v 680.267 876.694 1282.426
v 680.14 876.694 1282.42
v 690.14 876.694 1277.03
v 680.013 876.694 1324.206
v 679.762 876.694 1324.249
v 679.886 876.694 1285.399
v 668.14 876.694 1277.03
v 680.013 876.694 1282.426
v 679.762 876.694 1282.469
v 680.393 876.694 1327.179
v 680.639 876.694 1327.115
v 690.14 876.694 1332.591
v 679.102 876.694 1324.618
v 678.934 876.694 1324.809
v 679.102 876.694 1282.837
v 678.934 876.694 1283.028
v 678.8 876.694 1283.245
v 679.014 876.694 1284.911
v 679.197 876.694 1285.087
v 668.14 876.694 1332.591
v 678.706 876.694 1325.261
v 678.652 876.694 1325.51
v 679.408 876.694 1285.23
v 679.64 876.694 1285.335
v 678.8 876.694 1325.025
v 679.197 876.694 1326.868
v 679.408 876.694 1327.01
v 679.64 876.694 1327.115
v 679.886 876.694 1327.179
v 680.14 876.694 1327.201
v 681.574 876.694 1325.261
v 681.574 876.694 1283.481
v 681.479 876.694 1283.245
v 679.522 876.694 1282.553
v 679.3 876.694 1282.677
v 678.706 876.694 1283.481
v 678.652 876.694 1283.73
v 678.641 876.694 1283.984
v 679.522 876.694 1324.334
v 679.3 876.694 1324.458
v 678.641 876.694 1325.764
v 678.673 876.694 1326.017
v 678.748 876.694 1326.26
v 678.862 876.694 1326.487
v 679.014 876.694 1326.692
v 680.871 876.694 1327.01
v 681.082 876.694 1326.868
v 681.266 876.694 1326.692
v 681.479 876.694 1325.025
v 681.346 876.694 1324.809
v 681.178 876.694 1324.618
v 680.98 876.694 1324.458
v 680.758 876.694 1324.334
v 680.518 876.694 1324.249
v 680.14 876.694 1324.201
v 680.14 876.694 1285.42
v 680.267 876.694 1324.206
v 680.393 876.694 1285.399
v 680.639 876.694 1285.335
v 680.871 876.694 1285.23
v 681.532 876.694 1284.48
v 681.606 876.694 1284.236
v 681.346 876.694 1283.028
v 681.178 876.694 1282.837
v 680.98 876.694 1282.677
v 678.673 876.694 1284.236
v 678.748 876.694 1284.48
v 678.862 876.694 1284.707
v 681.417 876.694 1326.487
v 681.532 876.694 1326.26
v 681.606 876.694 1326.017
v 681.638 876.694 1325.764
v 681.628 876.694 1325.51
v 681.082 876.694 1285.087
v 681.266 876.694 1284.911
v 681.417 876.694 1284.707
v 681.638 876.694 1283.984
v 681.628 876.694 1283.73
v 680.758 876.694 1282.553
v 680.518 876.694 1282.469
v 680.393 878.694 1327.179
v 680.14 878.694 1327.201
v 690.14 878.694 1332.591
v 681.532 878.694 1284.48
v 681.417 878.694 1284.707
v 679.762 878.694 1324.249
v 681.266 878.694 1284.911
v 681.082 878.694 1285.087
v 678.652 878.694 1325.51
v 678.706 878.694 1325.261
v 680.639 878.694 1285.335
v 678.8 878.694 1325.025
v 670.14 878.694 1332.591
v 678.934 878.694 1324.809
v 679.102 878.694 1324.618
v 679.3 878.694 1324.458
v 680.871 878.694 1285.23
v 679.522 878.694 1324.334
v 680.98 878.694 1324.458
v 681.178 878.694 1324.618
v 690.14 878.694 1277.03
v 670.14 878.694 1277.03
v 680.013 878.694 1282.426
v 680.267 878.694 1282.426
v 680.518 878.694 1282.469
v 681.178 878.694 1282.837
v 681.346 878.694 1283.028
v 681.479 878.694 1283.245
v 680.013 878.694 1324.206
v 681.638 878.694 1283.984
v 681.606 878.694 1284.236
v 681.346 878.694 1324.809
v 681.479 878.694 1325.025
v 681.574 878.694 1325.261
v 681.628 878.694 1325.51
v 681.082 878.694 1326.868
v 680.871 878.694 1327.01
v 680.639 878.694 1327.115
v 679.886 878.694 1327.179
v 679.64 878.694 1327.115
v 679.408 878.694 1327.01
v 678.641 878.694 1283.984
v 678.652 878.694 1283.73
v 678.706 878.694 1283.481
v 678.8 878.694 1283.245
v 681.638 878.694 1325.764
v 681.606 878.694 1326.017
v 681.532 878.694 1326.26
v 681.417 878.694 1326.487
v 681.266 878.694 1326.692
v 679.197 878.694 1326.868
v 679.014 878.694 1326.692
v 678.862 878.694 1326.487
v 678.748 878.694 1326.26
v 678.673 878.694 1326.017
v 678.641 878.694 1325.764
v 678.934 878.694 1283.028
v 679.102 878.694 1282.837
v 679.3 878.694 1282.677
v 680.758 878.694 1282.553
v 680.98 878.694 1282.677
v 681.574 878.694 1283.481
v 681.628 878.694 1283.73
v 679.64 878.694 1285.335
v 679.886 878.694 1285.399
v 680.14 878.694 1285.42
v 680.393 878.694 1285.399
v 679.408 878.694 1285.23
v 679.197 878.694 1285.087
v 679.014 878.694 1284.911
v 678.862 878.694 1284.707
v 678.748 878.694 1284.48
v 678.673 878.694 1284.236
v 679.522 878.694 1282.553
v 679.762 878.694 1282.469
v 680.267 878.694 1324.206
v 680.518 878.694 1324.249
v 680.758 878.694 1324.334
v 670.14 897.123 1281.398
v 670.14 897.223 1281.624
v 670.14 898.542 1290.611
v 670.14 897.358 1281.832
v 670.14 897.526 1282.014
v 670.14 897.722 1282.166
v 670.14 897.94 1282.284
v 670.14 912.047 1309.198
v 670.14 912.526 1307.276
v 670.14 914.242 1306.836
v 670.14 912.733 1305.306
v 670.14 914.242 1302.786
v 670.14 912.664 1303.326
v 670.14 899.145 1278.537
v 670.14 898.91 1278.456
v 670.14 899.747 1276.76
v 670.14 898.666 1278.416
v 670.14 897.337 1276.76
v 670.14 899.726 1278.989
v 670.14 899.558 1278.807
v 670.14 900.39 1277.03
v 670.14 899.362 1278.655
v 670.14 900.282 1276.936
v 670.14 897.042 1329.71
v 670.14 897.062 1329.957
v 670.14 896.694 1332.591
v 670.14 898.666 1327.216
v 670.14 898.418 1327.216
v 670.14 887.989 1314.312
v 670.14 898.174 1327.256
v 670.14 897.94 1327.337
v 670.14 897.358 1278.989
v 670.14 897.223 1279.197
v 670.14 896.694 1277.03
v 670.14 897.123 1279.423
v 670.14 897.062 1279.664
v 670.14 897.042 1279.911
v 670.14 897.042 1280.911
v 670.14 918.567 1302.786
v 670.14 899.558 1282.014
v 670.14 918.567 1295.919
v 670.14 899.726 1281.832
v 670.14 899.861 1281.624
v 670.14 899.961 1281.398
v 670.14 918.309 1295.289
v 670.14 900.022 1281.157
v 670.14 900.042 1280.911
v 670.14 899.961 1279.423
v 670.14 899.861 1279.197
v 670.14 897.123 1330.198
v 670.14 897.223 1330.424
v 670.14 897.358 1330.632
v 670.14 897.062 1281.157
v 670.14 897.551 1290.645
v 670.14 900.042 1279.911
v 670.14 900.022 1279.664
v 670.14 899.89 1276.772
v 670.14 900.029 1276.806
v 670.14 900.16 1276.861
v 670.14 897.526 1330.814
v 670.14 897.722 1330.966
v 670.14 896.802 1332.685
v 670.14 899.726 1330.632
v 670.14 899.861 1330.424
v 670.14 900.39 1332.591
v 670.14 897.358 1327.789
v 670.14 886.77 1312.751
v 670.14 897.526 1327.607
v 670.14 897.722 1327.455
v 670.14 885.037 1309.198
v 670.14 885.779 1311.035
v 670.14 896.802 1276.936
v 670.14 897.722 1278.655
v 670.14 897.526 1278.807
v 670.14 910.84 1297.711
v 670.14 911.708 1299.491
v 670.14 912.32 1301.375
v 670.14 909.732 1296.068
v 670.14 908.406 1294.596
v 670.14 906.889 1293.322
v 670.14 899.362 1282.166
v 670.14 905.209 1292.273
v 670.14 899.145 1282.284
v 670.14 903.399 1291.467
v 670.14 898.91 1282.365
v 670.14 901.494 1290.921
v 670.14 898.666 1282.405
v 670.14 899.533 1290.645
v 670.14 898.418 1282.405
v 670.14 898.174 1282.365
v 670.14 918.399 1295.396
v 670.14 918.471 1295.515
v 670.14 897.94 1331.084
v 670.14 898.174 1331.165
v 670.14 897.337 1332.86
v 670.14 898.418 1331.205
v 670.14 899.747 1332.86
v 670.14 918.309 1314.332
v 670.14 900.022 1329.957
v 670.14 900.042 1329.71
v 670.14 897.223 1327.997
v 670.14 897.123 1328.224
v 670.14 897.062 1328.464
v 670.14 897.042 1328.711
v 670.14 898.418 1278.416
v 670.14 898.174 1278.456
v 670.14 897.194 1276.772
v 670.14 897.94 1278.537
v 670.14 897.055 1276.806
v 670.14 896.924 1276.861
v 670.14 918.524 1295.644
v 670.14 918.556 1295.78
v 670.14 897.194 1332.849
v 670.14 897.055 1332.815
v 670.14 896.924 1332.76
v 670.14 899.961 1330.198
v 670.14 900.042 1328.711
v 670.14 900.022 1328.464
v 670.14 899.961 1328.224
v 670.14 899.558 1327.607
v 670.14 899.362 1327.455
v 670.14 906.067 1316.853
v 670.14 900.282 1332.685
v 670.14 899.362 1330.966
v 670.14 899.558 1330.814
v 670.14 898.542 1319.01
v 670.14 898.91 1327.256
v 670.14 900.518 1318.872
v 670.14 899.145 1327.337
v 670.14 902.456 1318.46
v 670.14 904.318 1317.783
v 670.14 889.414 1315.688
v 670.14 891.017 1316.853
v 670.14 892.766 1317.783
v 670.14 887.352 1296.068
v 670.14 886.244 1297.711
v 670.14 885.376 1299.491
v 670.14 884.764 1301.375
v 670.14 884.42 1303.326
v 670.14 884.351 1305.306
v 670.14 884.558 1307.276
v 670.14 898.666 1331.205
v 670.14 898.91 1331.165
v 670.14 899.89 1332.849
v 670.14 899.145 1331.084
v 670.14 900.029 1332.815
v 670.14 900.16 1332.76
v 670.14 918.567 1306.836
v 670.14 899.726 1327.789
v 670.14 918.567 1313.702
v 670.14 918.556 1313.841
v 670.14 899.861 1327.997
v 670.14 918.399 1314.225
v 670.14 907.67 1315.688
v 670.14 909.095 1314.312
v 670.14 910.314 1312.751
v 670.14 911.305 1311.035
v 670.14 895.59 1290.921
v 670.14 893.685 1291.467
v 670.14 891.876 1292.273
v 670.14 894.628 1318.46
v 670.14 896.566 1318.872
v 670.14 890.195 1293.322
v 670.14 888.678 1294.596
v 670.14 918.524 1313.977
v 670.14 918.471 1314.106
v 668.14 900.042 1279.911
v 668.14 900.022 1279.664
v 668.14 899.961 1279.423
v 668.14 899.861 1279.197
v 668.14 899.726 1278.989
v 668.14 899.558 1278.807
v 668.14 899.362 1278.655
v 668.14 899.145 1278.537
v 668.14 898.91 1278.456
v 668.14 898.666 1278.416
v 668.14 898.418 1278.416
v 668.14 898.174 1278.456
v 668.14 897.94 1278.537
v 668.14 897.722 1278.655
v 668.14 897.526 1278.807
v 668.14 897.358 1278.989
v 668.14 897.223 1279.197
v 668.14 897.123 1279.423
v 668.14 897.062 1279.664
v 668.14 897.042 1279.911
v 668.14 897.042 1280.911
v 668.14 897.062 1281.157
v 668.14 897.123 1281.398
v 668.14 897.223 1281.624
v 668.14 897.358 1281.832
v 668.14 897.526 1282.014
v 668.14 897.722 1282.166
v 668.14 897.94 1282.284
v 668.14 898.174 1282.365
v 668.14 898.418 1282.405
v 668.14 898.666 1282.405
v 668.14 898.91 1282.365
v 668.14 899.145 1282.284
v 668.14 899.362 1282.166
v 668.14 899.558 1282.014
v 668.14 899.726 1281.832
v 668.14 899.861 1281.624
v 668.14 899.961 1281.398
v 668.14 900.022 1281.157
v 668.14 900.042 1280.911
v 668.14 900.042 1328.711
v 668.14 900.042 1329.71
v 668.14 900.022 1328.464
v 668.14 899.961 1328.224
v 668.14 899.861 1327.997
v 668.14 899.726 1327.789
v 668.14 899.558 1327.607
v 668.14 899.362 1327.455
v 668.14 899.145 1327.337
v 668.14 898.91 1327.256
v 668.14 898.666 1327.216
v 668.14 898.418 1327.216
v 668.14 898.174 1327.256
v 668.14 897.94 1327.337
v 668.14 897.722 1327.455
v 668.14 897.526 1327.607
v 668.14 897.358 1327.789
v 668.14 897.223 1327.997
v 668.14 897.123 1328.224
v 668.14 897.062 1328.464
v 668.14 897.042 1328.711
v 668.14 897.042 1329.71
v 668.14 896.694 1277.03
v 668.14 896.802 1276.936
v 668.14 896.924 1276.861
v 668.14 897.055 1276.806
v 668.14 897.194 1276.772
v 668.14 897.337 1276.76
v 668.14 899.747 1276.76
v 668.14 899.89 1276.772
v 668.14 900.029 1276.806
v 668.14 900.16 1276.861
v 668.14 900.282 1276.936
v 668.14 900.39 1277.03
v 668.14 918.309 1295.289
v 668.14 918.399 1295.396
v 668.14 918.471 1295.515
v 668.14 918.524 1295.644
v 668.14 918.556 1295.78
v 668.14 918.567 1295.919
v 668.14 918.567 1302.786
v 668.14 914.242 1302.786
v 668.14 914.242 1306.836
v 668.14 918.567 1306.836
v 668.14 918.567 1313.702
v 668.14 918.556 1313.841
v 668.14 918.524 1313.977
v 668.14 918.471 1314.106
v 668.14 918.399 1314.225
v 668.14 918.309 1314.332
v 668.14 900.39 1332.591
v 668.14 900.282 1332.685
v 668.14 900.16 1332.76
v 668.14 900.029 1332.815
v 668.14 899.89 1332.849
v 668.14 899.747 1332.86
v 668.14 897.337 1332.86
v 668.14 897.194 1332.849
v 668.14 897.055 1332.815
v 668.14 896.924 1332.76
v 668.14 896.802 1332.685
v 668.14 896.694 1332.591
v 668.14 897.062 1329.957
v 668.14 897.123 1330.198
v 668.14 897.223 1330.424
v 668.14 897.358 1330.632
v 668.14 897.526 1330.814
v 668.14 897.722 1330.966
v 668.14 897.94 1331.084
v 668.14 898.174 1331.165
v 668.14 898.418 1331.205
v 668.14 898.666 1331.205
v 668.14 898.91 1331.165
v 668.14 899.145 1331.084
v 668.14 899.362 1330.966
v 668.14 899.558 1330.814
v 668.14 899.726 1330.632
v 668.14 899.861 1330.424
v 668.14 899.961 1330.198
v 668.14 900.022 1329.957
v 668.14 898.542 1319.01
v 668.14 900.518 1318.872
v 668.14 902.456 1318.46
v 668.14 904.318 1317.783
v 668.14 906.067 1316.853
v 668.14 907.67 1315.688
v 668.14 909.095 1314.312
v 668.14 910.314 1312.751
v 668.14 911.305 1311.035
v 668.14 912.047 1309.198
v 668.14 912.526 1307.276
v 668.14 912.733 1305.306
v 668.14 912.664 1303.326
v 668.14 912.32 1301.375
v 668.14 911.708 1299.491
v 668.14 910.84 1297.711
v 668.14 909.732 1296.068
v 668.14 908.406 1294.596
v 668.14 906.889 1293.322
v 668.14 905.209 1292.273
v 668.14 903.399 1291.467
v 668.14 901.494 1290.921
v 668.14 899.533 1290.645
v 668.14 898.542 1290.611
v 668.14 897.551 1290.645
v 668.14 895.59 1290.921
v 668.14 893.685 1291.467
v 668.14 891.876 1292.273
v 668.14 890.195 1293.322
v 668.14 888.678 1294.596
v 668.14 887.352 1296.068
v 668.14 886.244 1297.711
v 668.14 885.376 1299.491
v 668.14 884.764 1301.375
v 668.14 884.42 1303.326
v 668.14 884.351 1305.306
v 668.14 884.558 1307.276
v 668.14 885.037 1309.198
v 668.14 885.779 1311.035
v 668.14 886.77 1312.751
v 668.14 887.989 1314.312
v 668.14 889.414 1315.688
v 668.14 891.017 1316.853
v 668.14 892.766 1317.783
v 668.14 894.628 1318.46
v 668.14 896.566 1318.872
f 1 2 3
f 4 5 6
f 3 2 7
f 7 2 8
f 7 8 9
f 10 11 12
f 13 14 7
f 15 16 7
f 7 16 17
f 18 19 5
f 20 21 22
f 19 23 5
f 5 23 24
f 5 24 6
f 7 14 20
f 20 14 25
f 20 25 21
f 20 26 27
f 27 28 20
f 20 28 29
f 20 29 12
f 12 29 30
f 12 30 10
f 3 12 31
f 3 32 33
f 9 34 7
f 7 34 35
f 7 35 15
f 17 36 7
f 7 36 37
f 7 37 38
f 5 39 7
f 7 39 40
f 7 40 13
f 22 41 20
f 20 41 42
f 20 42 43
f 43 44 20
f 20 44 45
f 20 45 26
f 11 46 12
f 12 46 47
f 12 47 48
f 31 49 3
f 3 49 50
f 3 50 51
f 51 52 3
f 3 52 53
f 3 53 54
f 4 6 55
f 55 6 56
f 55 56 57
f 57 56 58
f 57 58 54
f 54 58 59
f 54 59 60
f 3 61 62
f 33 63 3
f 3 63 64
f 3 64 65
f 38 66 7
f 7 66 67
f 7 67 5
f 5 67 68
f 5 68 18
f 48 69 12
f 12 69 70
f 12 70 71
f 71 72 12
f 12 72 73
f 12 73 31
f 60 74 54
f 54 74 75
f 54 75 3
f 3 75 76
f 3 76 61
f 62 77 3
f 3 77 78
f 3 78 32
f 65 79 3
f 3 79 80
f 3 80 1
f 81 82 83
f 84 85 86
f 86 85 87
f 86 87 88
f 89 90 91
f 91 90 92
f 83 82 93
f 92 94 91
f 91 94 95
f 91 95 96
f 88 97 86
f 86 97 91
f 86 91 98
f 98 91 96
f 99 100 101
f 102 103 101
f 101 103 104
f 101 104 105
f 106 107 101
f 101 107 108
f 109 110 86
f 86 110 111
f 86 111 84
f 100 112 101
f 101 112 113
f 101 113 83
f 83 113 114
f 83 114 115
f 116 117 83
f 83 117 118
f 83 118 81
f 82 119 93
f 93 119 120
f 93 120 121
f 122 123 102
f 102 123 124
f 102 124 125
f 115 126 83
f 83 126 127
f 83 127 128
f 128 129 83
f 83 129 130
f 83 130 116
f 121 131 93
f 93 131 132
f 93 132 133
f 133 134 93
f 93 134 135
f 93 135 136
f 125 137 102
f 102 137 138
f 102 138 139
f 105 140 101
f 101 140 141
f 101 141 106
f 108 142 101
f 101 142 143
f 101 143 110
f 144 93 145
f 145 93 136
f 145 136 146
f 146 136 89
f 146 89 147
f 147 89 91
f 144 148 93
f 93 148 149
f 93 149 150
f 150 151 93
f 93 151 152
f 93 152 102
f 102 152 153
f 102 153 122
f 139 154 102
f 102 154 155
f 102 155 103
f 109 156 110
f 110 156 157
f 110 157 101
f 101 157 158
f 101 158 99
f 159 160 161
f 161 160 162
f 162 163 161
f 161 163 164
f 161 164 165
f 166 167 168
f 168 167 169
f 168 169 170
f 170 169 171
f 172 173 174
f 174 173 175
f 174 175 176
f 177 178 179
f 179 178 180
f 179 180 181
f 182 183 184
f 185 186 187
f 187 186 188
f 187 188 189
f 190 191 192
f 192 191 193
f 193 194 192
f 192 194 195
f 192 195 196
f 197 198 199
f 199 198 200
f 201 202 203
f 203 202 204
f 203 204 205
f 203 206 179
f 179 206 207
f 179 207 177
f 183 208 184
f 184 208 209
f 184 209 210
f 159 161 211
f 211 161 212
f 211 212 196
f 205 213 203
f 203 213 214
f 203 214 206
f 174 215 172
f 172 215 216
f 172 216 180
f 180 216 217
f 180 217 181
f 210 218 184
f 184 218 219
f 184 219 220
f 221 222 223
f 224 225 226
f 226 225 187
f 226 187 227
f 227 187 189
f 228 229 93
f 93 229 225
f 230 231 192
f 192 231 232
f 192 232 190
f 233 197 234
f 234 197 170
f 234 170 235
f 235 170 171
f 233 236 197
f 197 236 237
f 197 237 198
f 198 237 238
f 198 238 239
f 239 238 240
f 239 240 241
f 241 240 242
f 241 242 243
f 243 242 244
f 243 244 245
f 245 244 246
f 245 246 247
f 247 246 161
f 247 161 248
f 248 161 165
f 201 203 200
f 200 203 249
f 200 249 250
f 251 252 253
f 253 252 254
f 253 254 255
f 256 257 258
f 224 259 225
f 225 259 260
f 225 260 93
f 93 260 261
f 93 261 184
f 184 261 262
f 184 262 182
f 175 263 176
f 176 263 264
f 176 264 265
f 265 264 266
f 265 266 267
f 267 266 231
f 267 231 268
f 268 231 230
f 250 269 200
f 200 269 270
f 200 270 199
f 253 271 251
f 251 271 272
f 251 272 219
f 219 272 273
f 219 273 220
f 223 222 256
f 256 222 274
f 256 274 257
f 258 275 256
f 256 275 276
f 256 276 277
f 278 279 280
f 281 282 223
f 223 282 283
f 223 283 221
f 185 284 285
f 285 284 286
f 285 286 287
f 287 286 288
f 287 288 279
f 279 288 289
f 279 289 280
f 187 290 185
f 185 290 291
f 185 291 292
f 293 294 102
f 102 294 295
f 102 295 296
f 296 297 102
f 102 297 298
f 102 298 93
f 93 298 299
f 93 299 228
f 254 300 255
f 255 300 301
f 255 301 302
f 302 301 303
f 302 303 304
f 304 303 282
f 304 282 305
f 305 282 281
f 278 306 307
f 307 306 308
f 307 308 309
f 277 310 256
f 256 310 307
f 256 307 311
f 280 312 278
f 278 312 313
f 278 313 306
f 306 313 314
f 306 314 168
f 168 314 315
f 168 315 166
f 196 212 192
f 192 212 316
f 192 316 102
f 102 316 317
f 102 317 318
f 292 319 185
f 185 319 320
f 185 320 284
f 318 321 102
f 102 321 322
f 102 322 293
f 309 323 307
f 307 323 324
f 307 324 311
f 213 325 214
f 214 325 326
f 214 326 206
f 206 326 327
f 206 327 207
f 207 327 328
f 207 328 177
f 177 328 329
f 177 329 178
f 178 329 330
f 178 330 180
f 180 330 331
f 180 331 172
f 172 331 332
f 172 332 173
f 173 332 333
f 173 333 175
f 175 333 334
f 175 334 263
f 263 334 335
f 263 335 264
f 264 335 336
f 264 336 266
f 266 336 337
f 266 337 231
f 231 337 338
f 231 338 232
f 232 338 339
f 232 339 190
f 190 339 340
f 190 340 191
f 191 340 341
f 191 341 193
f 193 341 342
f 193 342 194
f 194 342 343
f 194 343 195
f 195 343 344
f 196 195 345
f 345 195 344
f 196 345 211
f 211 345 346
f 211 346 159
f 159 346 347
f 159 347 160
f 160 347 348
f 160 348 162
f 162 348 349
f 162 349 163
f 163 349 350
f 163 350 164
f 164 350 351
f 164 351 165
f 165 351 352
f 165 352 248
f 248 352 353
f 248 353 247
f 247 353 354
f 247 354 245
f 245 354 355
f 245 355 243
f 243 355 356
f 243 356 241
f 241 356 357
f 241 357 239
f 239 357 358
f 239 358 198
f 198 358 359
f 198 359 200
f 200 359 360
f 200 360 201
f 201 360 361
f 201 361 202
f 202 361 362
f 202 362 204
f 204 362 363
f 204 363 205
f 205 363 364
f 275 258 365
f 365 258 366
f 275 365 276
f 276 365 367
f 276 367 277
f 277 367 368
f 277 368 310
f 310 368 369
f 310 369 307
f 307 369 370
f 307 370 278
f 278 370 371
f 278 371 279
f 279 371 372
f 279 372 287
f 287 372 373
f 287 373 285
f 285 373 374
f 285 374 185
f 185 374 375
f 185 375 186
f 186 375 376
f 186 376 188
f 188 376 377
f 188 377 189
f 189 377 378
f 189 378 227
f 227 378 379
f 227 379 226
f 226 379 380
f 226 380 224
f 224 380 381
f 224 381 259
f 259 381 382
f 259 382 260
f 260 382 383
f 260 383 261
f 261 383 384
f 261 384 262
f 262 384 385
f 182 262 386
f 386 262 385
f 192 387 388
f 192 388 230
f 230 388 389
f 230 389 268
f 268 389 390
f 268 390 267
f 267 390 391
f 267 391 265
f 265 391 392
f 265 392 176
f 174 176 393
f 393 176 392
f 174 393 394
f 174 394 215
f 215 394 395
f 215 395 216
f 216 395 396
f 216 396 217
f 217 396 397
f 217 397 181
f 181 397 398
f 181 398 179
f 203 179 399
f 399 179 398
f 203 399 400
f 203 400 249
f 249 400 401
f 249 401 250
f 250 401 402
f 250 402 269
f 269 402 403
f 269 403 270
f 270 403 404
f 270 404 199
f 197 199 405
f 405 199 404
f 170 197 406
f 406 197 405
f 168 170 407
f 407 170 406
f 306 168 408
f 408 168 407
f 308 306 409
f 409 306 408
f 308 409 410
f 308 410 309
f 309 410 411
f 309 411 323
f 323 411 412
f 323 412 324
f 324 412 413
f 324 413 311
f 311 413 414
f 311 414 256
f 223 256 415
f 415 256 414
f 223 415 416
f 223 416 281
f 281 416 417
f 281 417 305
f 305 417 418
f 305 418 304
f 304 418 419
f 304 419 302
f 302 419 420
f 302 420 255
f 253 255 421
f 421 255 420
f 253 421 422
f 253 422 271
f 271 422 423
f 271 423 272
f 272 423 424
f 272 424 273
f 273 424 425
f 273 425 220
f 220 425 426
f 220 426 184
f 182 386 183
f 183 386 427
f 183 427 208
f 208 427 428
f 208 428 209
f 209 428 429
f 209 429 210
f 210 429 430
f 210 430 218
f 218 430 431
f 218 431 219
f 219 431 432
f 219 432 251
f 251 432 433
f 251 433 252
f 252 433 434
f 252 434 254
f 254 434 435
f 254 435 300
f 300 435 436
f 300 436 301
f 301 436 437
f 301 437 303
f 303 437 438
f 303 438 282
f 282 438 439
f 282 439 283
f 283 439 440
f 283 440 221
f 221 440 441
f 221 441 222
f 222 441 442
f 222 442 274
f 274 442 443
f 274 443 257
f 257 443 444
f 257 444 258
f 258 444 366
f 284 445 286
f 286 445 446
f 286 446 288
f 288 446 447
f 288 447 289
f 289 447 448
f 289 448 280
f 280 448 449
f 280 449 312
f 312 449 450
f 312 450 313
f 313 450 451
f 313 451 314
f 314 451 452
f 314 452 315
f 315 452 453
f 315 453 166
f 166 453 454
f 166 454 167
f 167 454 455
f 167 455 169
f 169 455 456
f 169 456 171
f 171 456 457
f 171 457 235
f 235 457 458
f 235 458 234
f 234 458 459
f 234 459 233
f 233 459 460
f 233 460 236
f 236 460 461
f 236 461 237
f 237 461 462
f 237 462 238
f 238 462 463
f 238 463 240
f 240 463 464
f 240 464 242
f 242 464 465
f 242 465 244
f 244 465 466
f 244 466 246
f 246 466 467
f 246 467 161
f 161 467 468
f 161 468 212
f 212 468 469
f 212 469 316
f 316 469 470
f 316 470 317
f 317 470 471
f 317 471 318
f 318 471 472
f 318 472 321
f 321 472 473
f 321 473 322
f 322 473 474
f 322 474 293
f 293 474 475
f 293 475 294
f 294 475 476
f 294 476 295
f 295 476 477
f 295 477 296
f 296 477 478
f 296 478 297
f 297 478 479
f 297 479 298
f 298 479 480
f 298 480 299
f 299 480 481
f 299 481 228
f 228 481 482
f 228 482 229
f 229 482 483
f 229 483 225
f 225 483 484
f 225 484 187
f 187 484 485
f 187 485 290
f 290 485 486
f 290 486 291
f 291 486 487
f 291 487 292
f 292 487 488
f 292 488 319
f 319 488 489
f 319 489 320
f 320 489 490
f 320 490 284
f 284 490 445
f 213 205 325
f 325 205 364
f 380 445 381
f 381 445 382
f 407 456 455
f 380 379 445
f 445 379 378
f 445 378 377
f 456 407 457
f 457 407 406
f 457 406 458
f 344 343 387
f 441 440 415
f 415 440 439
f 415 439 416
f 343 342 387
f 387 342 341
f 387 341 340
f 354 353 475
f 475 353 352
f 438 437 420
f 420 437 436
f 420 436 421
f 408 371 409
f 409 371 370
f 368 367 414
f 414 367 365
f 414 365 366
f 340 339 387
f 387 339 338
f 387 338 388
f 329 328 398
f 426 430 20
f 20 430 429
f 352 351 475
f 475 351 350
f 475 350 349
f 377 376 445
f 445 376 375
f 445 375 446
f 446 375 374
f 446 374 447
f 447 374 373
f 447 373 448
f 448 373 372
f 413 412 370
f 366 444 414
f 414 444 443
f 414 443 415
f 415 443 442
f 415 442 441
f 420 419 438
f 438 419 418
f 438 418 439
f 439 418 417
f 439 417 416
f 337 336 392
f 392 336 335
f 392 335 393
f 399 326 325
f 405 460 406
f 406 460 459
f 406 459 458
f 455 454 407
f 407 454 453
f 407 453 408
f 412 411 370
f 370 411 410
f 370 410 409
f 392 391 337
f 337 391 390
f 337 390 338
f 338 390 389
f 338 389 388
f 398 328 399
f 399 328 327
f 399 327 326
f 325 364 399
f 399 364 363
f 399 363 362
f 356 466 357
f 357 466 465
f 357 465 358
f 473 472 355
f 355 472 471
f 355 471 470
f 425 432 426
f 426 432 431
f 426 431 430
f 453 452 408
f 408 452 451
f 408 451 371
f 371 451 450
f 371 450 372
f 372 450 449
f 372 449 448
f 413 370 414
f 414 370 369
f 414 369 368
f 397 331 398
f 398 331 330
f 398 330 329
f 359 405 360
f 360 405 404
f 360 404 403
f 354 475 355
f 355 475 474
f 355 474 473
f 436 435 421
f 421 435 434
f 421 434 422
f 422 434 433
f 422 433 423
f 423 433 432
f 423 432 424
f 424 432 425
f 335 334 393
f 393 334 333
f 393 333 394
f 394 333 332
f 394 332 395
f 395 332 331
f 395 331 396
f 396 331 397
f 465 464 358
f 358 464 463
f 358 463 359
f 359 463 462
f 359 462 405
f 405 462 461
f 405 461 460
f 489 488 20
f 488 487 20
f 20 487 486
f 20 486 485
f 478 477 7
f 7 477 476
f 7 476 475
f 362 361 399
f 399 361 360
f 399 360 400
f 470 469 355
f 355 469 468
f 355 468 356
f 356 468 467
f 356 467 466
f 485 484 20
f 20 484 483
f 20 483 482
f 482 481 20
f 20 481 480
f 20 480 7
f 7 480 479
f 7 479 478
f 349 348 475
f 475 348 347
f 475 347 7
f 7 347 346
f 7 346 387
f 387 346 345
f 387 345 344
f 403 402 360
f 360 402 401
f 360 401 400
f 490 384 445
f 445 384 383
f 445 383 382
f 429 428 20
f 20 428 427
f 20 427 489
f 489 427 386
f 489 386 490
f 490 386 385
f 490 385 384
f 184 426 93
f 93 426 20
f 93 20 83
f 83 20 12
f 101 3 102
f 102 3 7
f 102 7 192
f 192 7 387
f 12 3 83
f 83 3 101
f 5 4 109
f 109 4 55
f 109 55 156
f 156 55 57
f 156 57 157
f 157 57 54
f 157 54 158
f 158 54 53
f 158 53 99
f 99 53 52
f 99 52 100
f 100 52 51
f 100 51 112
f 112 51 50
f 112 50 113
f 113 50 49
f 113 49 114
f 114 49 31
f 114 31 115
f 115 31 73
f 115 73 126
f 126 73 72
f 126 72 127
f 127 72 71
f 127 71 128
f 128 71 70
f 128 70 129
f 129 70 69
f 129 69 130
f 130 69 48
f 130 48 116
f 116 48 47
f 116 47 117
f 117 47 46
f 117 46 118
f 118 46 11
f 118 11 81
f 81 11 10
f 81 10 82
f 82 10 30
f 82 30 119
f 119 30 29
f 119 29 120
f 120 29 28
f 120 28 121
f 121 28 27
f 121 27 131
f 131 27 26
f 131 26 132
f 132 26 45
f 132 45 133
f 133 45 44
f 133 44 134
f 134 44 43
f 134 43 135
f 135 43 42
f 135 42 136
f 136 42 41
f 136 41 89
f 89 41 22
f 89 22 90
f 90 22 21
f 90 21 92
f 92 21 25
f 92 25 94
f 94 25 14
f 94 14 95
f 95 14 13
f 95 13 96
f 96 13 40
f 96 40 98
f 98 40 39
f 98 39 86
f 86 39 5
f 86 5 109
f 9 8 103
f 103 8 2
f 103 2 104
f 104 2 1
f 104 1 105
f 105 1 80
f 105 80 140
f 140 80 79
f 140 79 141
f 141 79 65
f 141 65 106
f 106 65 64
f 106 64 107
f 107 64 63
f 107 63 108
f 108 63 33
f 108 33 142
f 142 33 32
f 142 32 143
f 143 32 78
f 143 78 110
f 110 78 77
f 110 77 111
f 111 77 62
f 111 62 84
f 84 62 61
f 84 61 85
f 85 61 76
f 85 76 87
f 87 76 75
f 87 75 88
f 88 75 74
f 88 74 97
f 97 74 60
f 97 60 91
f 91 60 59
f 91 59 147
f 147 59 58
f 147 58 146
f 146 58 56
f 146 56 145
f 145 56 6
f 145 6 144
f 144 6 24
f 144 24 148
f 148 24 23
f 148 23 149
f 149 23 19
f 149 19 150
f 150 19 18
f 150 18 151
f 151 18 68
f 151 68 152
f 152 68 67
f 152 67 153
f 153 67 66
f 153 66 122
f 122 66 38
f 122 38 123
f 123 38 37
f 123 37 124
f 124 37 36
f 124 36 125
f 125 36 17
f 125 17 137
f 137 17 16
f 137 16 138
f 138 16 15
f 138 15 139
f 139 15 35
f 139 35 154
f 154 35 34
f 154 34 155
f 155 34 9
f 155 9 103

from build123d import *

# Parameters (mm, degrees)
SKETCH1_R           = 14.2
SKETCH1_W           = 4.4
SKETCH1_H           = 4.2
BOSS_EXTRUDE1_DEPTH = 2
BOSS_EXTRUDE2_DEPTH = 2
SKETCH3_W           = 55.560809748
SKETCH3_H           = 2
BOSS_EXTRUDE3_DEPTH = 20
CUT_EXTRUDE1_DEPTH  = 2


with BuildPart() as part:
    # Sketch1 → Boss-Extrude1 (new body)
    with BuildSketch(Plane(origin=(668.139739498, 0, 0), x_dir=(0, 0, -1), z_dir=(1, 0, 0))):
        with BuildLine():
            ThreePointArc((-1314.332175016, 878.774707493), (-1314.042285701, 878.583942821), (-1313.701770142, 878.517038946))
            Line((-1313.701770142, 878.517038946), (-1306.83550516, 878.517038946))
            Line((-1306.83550516, 878.517038946), (-1306.83550516, 882.842038946))
            Line((-1306.83550516, 882.842038946), (-1302.78550516, 882.842038946))
            Line((-1302.78550516, 882.842038946), (-1302.78550516, 878.517038946))
            Line((-1302.78550516, 878.517038946), (-1295.919240178, 878.517038946))
            ThreePointArc((-1295.919240178, 878.517038946), (-1295.578724618, 878.583942821), (-1295.288835304, 878.774707493))
            Line((-1295.288835304, 878.774707493), (-1277.030100286, 896.694420906))
            ThreePointArc((-1277.030100286, 896.694420906), (-1276.830636379, 896.988445301), (-1276.76050516, 897.336752359))
            Line((-1276.76050516, 897.336752359), (-1276.76050516, 899.747325533))
            ThreePointArc((-1276.76050516, 899.747325533), (-1276.830636379, 900.095632591), (-1277.030100286, 900.389656986))
            Line((-1277.030100286, 900.389656986), (-1295.288835304, 918.309370399))
            ThreePointArc((-1295.288835304, 918.309370399), (-1295.578724618, 918.500135071), (-1295.919240178, 918.567038946))
            Line((-1295.919240178, 918.567038946), (-1302.78550516, 918.567038946))
            Line((-1302.78550516, 918.567038946), (-1302.78550516, 914.242038946))
            Line((-1302.78550516, 914.242038946), (-1306.83550516, 914.242038946))
            Line((-1306.83550516, 914.242038946), (-1306.83550516, 918.567038946))
            Line((-1306.83550516, 918.567038946), (-1313.701770142, 918.567038946))
            ThreePointArc((-1313.701770142, 918.567038946), (-1314.042285701, 918.500135071), (-1314.332175016, 918.309370399))
            Line((-1314.332175016, 918.309370399), (-1332.590910034, 900.389656986))
            ThreePointArc((-1332.590910034, 900.389656986), (-1332.79037394, 900.095632591), (-1332.86050516, 899.747325533))
            Line((-1332.86050516, 899.747325533), (-1332.86050516, 897.336752359))
            ThreePointArc((-1332.86050516, 897.336752359), (-1332.79037394, 896.988445301), (-1332.590910034, 896.694420906))
            Line((-1332.590910034, 896.694420906), (-1314.332175016, 878.774707493))
        make_face()
        with Locations((-1304.81050516, 898.542038946)):
            Circle(SKETCH1_R, mode=Mode.SUBTRACT)
        with BuildLine():
            Line((-1329.71050516, 900.042038946), (-1328.71050516, 900.042038946))
            ThreePointArc((-1328.71050516, 900.042038946), (-1327.21050516, 898.542038946), (-1328.71050516, 897.042038946))
            Line((-1328.71050516, 897.042038946), (-1329.71050516, 897.042038946))
            ThreePointArc((-1329.71050516, 897.042038946), (-1330.771165332, 897.481378774), (-1331.21050516, 898.542038946))
            ThreePointArc((-1331.21050516, 898.542038946), (-1330.771165332, 899.602699118), (-1329.71050516, 900.042038946))
        make_face(mode=Mode.SUBTRACT)
        with BuildLine():
            ThreePointArc((-1279.91050516, 900.042038946), (-1278.41050516, 898.542038946), (-1279.91050516, 897.042038946))
            Line((-1279.91050516, 897.042038946), (-1280.91050516, 897.042038946))
            ThreePointArc((-1280.91050516, 897.042038946), (-1281.971165332, 897.481378774), (-1282.41050516, 898.542038946))
            ThreePointArc((-1282.41050516, 898.542038946), (-1281.971165332, 899.602699118), (-1280.91050516, 900.042038946))
            Line((-1280.91050516, 900.042038946), (-1279.91050516, 900.042038946))
        make_face(mode=Mode.SUBTRACT)
        with Locations((-1286.76050516, 898.542038946)):
            Rectangle(SKETCH1_W, SKETCH1_H, mode=Mode.SUBTRACT)
        with Locations((-1322.86050516, 898.542038946)):
            Rectangle(SKETCH1_W, SKETCH1_H, mode=Mode.SUBTRACT)
        with Locations((-1322.86050516, 898.542038946)):
            Rectangle(SKETCH1_W, SKETCH1_H)
        with Locations((-1286.76050516, 898.542038946)):
            Rectangle(SKETCH1_W, SKETCH1_H)
    extrude(amount=BOSS_EXTRUDE1_DEPTH)

    # Sketch2 → Boss-Extrude2 (add)
    with BuildSketch(Plane(origin=(670.139739498, 0, 0), x_dir=(0, 0, -1), z_dir=(1, 0, 0))):
        with BuildLine():
            Line((-1332.590910034, 876.694420906), (-1277.030100286, 876.694420906))
            Line((-1277.030100286, 876.694420906), (-1277.030100286, 896.694420906))
            Line((-1277.030100286, 896.694420906), (-1295.288835304, 878.774707493))
            ThreePointArc((-1295.288835304, 878.774707493), (-1295.578724618, 878.583942821), (-1295.919240178, 878.517038946))
            Line((-1295.919240178, 878.517038946), (-1302.78550516, 878.517038946))
            Line((-1302.78550516, 878.517038946), (-1302.78550516, 882.842038946))
            Line((-1302.78550516, 882.842038946), (-1306.83550516, 882.842038946))
            Line((-1306.83550516, 882.842038946), (-1306.83550516, 878.517038946))
            Line((-1306.83550516, 878.517038946), (-1313.701770142, 878.517038946))
            ThreePointArc((-1313.701770142, 878.517038946), (-1314.042285701, 878.583942821), (-1314.332175016, 878.774707493))
            Line((-1314.332175016, 878.774707493), (-1332.590910034, 896.694420906))
            Line((-1332.590910034, 896.694420906), (-1332.590910034, 876.694420906))
        make_face()
    extrude(amount=-BOSS_EXTRUDE2_DEPTH)

    # Sketch3 → Boss-Extrude3 (add)
    with BuildSketch(Plane(origin=(670.139739498, 0, 0), x_dir=(0, 0, -1), z_dir=(1, 0, 0))):
        with Locations((-1304.81050516, 877.694420906)):
            Rectangle(SKETCH3_W, SKETCH3_H)
    extrude(amount=BOSS_EXTRUDE3_DEPTH)

    # Sketch4 → Cut-Extrude1 (cut)
    with BuildSketch(Plane(origin=(0, 878.694420906, 0), x_dir=(1, 0, 0), z_dir=(0, 1, 0))):
        with BuildLine():
            ThreePointArc((681.639739498, -1283.920302723), (681.20039967, -1282.859642551), (680.139739498, -1282.420302723))
            Line((680.139739498, -1282.420302723), (680.139739498, -1285.420302723))
            ThreePointArc((680.139739498, -1285.420302723), (681.20039967, -1284.980962895), (681.639739498, -1283.920302723))
        make_face()
        with BuildLine():
            Line((680.139739498, -1285.420302723), (680.139739498, -1282.420302723))
            ThreePointArc((680.139739498, -1282.420302723), (678.639739498, -1283.920302723), (680.139739498, -1285.420302723))
        make_face()
        with BuildLine():
            ThreePointArc((681.639739498, -1325.700707597), (681.20039967, -1324.640047425), (680.139739498, -1324.200707597))
            Line((680.139739498, -1324.200707597), (680.139739498, -1327.200707597))
            ThreePointArc((680.139739498, -1327.200707597), (681.20039967, -1326.761367768), (681.639739498, -1325.700707597))
        make_face()
        with BuildLine():
            Line((680.139739498, -1327.200707597), (680.139739498, -1324.200707597))
            ThreePointArc((680.139739498, -1324.200707597), (678.639739498, -1325.700707597), (680.139739498, -1327.200707597))
        make_face()
    extrude(amount=-CUT_EXTRUDE1_DEPTH, mode=Mode.SUBTRACT)


solid = part.part
